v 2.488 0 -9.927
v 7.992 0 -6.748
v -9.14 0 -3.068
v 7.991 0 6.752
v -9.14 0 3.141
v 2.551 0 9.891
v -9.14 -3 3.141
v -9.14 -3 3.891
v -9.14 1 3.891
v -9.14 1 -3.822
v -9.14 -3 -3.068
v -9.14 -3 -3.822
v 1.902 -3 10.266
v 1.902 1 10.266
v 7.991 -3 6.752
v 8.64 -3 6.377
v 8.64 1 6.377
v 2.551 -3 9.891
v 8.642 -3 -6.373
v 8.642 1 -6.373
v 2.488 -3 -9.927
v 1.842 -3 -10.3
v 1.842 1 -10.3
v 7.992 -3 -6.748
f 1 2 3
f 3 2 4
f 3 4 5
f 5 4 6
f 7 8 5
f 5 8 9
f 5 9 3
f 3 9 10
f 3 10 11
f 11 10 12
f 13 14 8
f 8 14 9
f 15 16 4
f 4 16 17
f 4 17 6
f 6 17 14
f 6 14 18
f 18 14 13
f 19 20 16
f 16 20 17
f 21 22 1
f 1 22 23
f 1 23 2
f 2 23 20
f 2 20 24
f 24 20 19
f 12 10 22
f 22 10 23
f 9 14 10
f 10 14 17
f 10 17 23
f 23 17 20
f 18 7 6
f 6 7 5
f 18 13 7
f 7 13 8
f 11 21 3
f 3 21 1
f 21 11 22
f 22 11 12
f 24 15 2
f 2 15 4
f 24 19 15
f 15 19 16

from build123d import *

# Parameters (mm, degrees)
BOSS_EXTRUDE2_DEPTH = 1
BOSS_EXTRUDE3_DEPTH = 3


with BuildPart() as part:
    # Sketch3 → Boss-Extrude2 (new body)
    with BuildSketch(Plane(origin=(0, 0, 0), x_dir=(1, 0, 0), z_dir=(0, 1, 0))):
        Polygon((-9.140125584, 3.822331346), (1.841778899, 10.300006386), (8.641571626, 6.373357215), (8.640464915, -6.376642737), (1.901698314, -10.266239118), (-9.140125584, -3.891239118), align=None)
    extrude(amount=BOSS_EXTRUDE2_DEPTH)

    # Sketch5 → Boss-Extrude3 (add)
    with BuildSketch(Plane.XZ):
        Polygon((-9.140125584, 3.891239118), (1.901698314, 10.266239118), (2.551217367, 9.89133862), (-9.140125584, 3.14133862), align=None)
        Polygon((-9.140125584, -3.822331346), (-9.140125584, -3.06825184), (2.48777328, -9.926966588), (1.841778899, -10.300006386), align=None)
        Polygon((8.640464915, 6.376642737), (8.641571626, -6.373357215), (7.99206405, -6.748425762), (7.990892239, 6.751574187), align=None)
    extrude(amount=BOSS_EXTRUDE3_DEPTH)


solid = part.part
